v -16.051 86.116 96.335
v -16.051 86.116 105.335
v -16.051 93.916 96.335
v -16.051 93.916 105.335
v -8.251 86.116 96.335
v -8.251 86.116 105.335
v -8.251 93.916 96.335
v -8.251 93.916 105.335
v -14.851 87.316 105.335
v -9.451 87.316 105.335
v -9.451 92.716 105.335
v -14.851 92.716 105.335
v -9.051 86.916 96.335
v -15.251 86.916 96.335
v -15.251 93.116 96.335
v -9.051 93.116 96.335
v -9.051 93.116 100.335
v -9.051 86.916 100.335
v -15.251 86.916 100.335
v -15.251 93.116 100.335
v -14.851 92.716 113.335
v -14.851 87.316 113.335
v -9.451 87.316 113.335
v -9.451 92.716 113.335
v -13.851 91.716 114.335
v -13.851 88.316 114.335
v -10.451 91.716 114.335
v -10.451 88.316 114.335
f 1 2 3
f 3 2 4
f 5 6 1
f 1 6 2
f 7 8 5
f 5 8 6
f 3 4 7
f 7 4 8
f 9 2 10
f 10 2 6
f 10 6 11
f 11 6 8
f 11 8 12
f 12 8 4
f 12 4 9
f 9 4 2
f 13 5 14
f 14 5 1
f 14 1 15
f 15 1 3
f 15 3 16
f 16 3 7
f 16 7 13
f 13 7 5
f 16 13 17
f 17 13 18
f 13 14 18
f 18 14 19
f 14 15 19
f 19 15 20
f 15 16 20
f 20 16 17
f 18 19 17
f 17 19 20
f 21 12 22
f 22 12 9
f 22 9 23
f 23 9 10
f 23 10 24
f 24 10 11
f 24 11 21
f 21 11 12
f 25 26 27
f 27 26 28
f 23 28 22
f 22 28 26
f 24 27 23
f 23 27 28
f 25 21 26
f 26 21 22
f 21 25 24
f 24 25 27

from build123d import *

# Parameters (mm, degrees)
SKETCH2_W           = 7.799999809
SKETCH2_H           = 7.79999981
BOSS_EXTRUDE1_DEPTH = 5
SKETCH3_W           = 7.799999809
SKETCH3_H           = 7.79999981
SKETCH3_W_2         = 6.199999809
SKETCH3_H_2         = 6.19999981
BOSS_EXTRUDE2_DEPTH = 4
SKETCH4_W           = 5.399999809
SKETCH4_H           = 5.39999981
BOSS_EXTRUDE3_DEPTH = 9
CHAMFER1_SIZE       = 1


with BuildPart() as part:
    # Sketch2 → Boss-Extrude1 (new body)
    with BuildSketch(Plane.XY.offset(100.335422766)):
        with Locations((-12.150804877, 90.015849294)):
            Rectangle(SKETCH2_W, SKETCH2_H)
    extrude(amount=BOSS_EXTRUDE1_DEPTH)

    # Sketch3 → Boss-Extrude2 (add)
    with BuildSketch(Plane(origin=(0, 0, 100.335422766), x_dir=(-1, 0, 0), z_dir=(0, 0, -1))):
        with Locations((12.150804877, 90.015849294)):
            Rectangle(SKETCH3_W, SKETCH3_H)
        with Locations((12.150804877, 90.015849294)):
            Rectangle(SKETCH3_W_2, SKETCH3_H_2, mode=Mode.SUBTRACT)
    extrude(amount=BOSS_EXTRUDE2_DEPTH)

    # Sketch4 → Boss-Extrude3 (add)
    with BuildSketch(Plane.XY.offset(105.335422766)):
        with Locations((-12.150804877, 90.015849294)):
            Rectangle(SKETCH4_W, SKETCH4_H)
    extrude(amount=BOSS_EXTRUDE3_DEPTH)

    # Chamfer1
    chamfer1_edges = [part.edges().sort_by_distance(p)[0] for p in [
        (-14.850804781, 90.015849294, 114.335422766),
        (-12.150804876, 87.315849389, 114.335422766),
        (-9.450804972, 90.015849294, 114.335422766),
        (-12.150804876, 92.715849199, 114.335422766),
    ]]
    chamfer(chamfer1_edges, length=CHAMFER1_SIZE)


solid = part.part
